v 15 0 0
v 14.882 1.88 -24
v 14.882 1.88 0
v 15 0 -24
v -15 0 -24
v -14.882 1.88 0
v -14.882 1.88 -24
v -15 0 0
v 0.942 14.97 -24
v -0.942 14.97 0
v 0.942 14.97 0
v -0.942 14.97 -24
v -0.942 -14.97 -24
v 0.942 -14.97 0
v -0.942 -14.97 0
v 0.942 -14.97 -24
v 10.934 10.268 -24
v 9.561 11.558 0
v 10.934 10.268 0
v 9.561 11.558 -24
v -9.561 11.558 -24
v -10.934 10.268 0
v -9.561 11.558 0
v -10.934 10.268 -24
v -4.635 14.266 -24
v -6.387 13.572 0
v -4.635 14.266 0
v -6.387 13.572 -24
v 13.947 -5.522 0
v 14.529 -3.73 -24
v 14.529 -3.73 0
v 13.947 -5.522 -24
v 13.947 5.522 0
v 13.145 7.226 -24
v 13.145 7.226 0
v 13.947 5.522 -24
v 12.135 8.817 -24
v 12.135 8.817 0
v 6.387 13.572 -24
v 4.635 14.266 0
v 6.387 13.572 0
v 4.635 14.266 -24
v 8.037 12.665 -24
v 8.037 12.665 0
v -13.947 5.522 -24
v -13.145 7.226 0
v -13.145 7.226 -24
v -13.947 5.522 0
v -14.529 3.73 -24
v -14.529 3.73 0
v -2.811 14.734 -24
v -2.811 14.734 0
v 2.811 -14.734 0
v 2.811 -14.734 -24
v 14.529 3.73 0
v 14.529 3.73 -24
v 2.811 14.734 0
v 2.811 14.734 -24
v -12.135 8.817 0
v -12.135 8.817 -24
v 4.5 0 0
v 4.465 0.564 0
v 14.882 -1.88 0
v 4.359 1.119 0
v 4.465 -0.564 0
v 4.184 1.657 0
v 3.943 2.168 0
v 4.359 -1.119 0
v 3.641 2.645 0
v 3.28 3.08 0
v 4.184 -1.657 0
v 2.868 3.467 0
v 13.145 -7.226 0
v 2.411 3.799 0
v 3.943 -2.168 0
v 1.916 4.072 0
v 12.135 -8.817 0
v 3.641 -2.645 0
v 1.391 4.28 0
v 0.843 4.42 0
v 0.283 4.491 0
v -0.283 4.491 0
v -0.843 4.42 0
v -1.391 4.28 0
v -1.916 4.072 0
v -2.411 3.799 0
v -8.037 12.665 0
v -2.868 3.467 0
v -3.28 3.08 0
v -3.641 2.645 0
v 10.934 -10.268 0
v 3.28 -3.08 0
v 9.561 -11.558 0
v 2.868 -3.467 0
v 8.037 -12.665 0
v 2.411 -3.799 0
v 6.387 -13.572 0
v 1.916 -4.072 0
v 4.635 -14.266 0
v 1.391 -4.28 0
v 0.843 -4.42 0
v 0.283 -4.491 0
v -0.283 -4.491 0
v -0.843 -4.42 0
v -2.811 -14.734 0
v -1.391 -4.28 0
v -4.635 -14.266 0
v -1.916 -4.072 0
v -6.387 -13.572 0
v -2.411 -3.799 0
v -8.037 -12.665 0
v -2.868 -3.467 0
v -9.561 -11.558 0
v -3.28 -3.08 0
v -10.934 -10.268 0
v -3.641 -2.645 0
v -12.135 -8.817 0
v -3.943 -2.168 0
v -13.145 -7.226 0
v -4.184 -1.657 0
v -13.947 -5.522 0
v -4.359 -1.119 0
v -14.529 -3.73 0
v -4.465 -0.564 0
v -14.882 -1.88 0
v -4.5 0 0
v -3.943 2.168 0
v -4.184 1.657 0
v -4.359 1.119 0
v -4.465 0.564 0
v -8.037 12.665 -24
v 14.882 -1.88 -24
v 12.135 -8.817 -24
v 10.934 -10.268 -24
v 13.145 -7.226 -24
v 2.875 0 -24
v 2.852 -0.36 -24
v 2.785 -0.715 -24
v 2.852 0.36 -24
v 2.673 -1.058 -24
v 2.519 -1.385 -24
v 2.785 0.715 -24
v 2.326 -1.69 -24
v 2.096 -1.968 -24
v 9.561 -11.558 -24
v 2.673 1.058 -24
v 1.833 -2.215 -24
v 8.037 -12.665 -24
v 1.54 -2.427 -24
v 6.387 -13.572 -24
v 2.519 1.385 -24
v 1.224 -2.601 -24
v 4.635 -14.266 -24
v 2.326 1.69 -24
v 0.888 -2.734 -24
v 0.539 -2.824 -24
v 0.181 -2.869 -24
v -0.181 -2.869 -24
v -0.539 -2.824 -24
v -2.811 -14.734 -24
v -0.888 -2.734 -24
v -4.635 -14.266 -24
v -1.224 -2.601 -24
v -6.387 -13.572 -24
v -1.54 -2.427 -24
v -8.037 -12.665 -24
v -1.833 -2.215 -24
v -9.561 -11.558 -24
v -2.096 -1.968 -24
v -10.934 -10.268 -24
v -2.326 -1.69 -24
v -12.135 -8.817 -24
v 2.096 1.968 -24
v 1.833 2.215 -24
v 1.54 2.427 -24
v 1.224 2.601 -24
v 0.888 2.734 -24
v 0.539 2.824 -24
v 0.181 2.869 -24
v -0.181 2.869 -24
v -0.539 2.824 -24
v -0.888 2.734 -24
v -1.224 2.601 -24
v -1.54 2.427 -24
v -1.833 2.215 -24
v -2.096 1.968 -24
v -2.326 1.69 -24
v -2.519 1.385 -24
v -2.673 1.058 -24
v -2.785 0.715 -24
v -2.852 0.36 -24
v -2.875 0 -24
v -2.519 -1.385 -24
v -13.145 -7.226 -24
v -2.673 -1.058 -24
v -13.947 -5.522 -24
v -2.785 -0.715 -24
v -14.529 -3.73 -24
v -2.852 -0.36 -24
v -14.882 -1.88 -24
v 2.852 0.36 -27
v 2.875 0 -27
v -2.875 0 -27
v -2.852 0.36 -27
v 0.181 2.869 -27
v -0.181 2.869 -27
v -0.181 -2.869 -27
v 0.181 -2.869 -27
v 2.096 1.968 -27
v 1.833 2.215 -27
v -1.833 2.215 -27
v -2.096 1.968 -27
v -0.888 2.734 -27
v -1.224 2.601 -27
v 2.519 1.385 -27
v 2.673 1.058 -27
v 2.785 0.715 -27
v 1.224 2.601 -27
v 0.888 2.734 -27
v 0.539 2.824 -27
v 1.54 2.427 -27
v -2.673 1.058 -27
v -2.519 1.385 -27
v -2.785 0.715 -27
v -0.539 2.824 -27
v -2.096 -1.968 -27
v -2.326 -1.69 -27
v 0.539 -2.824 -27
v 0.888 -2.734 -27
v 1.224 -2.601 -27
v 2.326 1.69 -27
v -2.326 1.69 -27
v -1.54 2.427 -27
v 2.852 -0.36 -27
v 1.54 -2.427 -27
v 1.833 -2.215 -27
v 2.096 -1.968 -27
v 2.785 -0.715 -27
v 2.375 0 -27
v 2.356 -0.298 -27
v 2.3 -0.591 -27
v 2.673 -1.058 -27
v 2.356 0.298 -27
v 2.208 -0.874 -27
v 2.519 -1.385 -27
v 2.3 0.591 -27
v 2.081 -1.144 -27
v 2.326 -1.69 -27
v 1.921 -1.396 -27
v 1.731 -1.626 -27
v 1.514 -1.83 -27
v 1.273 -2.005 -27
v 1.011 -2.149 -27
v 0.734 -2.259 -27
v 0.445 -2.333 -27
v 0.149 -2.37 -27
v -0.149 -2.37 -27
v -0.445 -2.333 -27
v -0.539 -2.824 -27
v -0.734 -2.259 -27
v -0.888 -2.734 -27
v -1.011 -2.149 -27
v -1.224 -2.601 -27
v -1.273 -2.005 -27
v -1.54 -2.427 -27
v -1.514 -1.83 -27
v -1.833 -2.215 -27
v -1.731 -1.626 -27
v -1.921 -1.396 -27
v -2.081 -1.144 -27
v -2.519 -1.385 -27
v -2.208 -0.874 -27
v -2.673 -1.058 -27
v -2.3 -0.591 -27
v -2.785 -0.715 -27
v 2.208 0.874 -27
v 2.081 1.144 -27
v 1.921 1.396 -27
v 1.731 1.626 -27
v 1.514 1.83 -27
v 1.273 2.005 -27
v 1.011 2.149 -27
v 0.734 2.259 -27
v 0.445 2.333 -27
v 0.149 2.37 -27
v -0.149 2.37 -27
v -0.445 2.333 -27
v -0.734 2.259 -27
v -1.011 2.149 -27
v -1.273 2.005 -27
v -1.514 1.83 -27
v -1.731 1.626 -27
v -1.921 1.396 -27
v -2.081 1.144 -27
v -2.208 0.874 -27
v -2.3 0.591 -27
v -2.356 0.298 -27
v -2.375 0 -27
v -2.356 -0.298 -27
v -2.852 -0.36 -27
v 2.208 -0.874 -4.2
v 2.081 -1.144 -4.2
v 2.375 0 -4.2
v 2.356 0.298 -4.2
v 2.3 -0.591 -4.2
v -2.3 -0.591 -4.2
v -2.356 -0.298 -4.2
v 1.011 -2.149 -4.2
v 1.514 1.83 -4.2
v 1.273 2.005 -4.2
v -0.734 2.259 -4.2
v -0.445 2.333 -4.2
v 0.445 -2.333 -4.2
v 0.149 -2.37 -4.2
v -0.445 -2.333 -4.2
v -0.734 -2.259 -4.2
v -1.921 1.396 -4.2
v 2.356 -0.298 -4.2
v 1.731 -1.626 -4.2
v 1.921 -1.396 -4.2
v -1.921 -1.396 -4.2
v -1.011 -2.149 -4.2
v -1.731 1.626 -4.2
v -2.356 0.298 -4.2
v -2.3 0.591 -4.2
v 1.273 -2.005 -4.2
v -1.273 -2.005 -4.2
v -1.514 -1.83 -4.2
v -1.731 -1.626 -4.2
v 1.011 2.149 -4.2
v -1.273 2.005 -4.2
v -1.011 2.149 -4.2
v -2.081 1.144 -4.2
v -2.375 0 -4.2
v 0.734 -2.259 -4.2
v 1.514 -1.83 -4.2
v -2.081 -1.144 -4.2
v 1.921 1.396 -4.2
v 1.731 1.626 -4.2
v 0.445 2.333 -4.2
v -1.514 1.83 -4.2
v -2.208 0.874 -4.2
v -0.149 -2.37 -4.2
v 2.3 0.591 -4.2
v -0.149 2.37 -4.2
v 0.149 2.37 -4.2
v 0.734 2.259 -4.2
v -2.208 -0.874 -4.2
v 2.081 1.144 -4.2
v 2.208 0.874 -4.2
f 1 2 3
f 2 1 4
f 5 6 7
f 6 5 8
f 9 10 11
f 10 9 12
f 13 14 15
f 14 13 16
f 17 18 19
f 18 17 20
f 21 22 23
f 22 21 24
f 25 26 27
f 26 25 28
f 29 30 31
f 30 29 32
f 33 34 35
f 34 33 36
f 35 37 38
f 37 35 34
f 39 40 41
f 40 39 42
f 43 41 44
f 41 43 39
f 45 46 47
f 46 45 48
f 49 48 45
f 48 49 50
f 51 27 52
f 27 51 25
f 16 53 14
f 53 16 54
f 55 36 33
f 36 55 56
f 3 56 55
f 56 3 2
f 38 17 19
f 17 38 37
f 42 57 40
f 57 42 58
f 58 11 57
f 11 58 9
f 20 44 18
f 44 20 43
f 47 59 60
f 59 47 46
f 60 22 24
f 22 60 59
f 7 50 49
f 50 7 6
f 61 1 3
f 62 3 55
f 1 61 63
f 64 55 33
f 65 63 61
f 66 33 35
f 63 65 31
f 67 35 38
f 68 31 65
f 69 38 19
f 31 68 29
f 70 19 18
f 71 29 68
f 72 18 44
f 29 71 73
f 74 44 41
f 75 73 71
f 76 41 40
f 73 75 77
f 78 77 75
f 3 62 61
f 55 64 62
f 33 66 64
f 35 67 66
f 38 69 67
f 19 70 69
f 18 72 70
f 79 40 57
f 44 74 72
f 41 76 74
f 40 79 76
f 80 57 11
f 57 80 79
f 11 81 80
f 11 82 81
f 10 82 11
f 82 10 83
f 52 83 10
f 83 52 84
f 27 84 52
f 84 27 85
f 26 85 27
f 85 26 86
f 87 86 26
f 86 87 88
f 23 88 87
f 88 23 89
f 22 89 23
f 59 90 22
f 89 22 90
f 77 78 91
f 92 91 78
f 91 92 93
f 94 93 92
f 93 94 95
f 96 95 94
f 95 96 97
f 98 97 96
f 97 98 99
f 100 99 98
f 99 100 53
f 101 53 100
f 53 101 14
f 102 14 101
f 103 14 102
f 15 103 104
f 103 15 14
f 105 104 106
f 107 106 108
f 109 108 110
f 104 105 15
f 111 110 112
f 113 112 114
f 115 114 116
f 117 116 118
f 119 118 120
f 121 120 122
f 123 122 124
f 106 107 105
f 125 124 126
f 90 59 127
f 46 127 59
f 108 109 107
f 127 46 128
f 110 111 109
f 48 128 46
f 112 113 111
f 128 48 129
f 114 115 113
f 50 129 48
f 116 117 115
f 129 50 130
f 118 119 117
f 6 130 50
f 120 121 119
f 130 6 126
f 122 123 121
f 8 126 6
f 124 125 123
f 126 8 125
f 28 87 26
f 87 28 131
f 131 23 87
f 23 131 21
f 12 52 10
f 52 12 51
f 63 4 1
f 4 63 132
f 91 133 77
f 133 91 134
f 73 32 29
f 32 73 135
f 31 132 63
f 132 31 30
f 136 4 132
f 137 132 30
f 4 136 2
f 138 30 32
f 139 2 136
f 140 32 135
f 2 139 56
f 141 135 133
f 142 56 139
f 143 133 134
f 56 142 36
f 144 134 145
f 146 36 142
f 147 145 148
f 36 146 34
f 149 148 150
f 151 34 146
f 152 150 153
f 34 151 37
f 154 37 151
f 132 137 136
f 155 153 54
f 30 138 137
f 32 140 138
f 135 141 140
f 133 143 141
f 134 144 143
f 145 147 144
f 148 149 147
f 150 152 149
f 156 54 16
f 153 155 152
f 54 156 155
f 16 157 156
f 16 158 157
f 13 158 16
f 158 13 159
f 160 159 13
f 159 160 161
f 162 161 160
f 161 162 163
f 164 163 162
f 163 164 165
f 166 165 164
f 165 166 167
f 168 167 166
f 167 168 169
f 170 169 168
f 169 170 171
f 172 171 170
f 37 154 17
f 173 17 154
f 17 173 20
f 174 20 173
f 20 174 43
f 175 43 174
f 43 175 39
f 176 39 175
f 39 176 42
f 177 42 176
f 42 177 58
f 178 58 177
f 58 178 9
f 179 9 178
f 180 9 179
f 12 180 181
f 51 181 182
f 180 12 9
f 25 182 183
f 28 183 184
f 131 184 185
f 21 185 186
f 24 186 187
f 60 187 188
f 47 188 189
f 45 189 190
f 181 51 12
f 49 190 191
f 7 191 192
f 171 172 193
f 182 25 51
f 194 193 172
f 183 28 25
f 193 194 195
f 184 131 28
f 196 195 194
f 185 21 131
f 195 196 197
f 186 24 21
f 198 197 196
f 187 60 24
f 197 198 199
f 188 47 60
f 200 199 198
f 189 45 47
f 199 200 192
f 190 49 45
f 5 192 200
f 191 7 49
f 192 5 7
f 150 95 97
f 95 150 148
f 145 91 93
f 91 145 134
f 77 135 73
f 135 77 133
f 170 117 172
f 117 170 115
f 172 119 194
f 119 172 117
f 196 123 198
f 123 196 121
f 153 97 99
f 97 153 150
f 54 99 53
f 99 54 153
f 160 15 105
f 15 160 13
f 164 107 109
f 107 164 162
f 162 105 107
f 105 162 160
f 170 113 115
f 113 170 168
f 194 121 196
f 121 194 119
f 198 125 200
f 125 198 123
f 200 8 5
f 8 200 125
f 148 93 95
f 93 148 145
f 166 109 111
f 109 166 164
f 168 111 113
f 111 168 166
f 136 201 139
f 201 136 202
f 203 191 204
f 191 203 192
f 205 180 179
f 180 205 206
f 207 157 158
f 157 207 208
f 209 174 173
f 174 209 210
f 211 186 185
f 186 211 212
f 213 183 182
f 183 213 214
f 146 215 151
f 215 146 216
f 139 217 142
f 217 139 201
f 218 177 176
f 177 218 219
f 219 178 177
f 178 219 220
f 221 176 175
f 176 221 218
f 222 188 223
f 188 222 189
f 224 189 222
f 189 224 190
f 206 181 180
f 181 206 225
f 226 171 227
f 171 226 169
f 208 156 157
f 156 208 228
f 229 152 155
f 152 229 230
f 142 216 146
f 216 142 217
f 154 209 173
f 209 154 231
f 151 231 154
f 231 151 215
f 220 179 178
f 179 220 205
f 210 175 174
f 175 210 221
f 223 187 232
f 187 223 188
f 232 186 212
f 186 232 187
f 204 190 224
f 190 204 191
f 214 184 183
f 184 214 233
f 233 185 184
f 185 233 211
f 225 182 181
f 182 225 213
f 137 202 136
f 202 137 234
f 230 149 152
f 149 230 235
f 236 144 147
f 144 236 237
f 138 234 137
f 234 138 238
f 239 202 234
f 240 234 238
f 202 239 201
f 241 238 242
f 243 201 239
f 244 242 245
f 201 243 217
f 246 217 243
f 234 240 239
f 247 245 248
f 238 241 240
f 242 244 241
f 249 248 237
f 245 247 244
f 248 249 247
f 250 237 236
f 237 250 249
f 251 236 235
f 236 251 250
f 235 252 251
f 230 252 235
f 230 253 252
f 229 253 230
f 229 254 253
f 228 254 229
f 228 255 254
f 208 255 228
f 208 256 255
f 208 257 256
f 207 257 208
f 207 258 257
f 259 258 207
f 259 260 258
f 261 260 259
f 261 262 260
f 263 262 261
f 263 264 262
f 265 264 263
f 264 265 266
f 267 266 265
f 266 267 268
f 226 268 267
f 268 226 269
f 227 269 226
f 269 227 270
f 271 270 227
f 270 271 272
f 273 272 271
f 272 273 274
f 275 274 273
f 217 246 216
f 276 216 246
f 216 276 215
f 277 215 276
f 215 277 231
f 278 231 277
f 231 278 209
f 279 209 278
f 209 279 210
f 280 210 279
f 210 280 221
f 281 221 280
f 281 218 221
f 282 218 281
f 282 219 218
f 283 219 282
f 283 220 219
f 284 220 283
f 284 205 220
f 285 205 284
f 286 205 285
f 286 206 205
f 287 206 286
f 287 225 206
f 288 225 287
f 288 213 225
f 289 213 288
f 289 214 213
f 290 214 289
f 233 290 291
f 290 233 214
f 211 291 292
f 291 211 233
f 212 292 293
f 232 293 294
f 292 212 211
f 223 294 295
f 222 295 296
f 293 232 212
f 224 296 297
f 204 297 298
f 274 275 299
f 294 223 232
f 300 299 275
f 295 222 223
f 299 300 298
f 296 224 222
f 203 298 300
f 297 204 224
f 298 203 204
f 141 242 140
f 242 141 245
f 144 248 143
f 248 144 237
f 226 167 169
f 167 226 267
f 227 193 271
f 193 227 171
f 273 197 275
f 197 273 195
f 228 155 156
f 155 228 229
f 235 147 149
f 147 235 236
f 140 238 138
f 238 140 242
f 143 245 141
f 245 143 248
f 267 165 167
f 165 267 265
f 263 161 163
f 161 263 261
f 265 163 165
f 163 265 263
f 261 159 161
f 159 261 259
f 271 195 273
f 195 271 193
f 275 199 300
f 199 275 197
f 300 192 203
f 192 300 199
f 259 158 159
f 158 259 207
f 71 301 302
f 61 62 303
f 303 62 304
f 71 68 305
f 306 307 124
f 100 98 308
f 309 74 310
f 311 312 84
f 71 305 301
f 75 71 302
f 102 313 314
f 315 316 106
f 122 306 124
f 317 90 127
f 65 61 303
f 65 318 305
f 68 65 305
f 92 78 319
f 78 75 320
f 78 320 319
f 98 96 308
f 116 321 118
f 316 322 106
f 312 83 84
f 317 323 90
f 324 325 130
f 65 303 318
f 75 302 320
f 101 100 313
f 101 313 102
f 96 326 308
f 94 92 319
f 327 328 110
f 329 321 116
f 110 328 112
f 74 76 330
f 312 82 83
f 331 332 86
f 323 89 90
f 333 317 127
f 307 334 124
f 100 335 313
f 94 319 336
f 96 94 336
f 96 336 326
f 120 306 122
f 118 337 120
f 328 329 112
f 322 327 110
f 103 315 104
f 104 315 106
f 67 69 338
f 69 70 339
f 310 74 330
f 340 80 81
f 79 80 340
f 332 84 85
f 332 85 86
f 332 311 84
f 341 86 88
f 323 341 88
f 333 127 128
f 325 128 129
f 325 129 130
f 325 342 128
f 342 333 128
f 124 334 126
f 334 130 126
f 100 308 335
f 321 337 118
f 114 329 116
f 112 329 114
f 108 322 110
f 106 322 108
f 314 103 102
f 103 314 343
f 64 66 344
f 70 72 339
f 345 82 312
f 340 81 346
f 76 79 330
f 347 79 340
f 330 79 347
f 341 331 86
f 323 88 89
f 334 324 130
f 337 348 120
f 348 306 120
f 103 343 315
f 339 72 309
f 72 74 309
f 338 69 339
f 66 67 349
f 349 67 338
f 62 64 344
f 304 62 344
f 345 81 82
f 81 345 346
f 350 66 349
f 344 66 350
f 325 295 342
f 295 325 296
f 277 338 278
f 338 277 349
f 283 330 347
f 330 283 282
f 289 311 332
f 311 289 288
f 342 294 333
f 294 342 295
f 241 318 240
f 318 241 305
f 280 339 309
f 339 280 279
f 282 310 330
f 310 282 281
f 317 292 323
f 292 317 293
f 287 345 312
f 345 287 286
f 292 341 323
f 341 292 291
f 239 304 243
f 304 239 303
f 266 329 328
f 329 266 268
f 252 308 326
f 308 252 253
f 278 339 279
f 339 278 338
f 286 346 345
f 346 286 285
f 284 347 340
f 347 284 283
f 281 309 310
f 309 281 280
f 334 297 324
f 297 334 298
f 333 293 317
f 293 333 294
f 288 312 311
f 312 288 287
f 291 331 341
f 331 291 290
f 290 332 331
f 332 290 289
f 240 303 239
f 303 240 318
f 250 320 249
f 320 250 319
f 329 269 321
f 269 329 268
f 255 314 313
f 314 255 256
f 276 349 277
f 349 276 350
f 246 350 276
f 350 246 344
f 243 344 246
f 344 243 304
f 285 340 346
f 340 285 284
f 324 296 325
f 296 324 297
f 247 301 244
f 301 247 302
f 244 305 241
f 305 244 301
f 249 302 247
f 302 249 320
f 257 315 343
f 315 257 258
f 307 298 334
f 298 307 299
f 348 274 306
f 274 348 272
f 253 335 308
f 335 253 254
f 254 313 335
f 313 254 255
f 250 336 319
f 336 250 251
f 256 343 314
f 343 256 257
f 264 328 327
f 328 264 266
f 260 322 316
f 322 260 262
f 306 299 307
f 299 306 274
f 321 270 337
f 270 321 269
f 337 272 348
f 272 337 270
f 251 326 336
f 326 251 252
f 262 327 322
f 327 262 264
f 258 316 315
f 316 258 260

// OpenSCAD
$fn = 50;

difference() {
	union() {
		translate(v = [0, 0, -24.0]) {
			cylinder(h = 24, r = 15.0);
		}
		#translate(v = [0, 0, -27.0]) {
			cylinder(h = 27, r = 2.875);
		}
	}
	union() {
		translate(v = [0, 0, 0]) {
			rotate(a = [0, 0, 0]) {
				difference() {
					union() {
						translate(v = [0, 0, -27.0]) {
							cylinder(h = 27, r = 2.25);
						}
						translate(v = [0, 0, -4.2]) {
							cylinder(h = 4.2, r1 = 2.375, r2 = 4.5);
						}
						translate(v = [0, 0, -27.0]) {
							cylinder(h = 27, r = 2.375);
						}
						translate(v = [0, 0, -27.0]) {
							cylinder(h = 27, r = 2.25);
						}
					}
					union();
				}
			}
		}
	}
}
